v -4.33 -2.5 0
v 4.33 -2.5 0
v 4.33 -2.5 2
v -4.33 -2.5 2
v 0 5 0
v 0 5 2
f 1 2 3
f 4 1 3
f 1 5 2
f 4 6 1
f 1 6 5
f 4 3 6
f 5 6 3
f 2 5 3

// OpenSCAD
use <MCAD/regular_shapes.scad>

linear_extrude(height=2)
triangle(5);
